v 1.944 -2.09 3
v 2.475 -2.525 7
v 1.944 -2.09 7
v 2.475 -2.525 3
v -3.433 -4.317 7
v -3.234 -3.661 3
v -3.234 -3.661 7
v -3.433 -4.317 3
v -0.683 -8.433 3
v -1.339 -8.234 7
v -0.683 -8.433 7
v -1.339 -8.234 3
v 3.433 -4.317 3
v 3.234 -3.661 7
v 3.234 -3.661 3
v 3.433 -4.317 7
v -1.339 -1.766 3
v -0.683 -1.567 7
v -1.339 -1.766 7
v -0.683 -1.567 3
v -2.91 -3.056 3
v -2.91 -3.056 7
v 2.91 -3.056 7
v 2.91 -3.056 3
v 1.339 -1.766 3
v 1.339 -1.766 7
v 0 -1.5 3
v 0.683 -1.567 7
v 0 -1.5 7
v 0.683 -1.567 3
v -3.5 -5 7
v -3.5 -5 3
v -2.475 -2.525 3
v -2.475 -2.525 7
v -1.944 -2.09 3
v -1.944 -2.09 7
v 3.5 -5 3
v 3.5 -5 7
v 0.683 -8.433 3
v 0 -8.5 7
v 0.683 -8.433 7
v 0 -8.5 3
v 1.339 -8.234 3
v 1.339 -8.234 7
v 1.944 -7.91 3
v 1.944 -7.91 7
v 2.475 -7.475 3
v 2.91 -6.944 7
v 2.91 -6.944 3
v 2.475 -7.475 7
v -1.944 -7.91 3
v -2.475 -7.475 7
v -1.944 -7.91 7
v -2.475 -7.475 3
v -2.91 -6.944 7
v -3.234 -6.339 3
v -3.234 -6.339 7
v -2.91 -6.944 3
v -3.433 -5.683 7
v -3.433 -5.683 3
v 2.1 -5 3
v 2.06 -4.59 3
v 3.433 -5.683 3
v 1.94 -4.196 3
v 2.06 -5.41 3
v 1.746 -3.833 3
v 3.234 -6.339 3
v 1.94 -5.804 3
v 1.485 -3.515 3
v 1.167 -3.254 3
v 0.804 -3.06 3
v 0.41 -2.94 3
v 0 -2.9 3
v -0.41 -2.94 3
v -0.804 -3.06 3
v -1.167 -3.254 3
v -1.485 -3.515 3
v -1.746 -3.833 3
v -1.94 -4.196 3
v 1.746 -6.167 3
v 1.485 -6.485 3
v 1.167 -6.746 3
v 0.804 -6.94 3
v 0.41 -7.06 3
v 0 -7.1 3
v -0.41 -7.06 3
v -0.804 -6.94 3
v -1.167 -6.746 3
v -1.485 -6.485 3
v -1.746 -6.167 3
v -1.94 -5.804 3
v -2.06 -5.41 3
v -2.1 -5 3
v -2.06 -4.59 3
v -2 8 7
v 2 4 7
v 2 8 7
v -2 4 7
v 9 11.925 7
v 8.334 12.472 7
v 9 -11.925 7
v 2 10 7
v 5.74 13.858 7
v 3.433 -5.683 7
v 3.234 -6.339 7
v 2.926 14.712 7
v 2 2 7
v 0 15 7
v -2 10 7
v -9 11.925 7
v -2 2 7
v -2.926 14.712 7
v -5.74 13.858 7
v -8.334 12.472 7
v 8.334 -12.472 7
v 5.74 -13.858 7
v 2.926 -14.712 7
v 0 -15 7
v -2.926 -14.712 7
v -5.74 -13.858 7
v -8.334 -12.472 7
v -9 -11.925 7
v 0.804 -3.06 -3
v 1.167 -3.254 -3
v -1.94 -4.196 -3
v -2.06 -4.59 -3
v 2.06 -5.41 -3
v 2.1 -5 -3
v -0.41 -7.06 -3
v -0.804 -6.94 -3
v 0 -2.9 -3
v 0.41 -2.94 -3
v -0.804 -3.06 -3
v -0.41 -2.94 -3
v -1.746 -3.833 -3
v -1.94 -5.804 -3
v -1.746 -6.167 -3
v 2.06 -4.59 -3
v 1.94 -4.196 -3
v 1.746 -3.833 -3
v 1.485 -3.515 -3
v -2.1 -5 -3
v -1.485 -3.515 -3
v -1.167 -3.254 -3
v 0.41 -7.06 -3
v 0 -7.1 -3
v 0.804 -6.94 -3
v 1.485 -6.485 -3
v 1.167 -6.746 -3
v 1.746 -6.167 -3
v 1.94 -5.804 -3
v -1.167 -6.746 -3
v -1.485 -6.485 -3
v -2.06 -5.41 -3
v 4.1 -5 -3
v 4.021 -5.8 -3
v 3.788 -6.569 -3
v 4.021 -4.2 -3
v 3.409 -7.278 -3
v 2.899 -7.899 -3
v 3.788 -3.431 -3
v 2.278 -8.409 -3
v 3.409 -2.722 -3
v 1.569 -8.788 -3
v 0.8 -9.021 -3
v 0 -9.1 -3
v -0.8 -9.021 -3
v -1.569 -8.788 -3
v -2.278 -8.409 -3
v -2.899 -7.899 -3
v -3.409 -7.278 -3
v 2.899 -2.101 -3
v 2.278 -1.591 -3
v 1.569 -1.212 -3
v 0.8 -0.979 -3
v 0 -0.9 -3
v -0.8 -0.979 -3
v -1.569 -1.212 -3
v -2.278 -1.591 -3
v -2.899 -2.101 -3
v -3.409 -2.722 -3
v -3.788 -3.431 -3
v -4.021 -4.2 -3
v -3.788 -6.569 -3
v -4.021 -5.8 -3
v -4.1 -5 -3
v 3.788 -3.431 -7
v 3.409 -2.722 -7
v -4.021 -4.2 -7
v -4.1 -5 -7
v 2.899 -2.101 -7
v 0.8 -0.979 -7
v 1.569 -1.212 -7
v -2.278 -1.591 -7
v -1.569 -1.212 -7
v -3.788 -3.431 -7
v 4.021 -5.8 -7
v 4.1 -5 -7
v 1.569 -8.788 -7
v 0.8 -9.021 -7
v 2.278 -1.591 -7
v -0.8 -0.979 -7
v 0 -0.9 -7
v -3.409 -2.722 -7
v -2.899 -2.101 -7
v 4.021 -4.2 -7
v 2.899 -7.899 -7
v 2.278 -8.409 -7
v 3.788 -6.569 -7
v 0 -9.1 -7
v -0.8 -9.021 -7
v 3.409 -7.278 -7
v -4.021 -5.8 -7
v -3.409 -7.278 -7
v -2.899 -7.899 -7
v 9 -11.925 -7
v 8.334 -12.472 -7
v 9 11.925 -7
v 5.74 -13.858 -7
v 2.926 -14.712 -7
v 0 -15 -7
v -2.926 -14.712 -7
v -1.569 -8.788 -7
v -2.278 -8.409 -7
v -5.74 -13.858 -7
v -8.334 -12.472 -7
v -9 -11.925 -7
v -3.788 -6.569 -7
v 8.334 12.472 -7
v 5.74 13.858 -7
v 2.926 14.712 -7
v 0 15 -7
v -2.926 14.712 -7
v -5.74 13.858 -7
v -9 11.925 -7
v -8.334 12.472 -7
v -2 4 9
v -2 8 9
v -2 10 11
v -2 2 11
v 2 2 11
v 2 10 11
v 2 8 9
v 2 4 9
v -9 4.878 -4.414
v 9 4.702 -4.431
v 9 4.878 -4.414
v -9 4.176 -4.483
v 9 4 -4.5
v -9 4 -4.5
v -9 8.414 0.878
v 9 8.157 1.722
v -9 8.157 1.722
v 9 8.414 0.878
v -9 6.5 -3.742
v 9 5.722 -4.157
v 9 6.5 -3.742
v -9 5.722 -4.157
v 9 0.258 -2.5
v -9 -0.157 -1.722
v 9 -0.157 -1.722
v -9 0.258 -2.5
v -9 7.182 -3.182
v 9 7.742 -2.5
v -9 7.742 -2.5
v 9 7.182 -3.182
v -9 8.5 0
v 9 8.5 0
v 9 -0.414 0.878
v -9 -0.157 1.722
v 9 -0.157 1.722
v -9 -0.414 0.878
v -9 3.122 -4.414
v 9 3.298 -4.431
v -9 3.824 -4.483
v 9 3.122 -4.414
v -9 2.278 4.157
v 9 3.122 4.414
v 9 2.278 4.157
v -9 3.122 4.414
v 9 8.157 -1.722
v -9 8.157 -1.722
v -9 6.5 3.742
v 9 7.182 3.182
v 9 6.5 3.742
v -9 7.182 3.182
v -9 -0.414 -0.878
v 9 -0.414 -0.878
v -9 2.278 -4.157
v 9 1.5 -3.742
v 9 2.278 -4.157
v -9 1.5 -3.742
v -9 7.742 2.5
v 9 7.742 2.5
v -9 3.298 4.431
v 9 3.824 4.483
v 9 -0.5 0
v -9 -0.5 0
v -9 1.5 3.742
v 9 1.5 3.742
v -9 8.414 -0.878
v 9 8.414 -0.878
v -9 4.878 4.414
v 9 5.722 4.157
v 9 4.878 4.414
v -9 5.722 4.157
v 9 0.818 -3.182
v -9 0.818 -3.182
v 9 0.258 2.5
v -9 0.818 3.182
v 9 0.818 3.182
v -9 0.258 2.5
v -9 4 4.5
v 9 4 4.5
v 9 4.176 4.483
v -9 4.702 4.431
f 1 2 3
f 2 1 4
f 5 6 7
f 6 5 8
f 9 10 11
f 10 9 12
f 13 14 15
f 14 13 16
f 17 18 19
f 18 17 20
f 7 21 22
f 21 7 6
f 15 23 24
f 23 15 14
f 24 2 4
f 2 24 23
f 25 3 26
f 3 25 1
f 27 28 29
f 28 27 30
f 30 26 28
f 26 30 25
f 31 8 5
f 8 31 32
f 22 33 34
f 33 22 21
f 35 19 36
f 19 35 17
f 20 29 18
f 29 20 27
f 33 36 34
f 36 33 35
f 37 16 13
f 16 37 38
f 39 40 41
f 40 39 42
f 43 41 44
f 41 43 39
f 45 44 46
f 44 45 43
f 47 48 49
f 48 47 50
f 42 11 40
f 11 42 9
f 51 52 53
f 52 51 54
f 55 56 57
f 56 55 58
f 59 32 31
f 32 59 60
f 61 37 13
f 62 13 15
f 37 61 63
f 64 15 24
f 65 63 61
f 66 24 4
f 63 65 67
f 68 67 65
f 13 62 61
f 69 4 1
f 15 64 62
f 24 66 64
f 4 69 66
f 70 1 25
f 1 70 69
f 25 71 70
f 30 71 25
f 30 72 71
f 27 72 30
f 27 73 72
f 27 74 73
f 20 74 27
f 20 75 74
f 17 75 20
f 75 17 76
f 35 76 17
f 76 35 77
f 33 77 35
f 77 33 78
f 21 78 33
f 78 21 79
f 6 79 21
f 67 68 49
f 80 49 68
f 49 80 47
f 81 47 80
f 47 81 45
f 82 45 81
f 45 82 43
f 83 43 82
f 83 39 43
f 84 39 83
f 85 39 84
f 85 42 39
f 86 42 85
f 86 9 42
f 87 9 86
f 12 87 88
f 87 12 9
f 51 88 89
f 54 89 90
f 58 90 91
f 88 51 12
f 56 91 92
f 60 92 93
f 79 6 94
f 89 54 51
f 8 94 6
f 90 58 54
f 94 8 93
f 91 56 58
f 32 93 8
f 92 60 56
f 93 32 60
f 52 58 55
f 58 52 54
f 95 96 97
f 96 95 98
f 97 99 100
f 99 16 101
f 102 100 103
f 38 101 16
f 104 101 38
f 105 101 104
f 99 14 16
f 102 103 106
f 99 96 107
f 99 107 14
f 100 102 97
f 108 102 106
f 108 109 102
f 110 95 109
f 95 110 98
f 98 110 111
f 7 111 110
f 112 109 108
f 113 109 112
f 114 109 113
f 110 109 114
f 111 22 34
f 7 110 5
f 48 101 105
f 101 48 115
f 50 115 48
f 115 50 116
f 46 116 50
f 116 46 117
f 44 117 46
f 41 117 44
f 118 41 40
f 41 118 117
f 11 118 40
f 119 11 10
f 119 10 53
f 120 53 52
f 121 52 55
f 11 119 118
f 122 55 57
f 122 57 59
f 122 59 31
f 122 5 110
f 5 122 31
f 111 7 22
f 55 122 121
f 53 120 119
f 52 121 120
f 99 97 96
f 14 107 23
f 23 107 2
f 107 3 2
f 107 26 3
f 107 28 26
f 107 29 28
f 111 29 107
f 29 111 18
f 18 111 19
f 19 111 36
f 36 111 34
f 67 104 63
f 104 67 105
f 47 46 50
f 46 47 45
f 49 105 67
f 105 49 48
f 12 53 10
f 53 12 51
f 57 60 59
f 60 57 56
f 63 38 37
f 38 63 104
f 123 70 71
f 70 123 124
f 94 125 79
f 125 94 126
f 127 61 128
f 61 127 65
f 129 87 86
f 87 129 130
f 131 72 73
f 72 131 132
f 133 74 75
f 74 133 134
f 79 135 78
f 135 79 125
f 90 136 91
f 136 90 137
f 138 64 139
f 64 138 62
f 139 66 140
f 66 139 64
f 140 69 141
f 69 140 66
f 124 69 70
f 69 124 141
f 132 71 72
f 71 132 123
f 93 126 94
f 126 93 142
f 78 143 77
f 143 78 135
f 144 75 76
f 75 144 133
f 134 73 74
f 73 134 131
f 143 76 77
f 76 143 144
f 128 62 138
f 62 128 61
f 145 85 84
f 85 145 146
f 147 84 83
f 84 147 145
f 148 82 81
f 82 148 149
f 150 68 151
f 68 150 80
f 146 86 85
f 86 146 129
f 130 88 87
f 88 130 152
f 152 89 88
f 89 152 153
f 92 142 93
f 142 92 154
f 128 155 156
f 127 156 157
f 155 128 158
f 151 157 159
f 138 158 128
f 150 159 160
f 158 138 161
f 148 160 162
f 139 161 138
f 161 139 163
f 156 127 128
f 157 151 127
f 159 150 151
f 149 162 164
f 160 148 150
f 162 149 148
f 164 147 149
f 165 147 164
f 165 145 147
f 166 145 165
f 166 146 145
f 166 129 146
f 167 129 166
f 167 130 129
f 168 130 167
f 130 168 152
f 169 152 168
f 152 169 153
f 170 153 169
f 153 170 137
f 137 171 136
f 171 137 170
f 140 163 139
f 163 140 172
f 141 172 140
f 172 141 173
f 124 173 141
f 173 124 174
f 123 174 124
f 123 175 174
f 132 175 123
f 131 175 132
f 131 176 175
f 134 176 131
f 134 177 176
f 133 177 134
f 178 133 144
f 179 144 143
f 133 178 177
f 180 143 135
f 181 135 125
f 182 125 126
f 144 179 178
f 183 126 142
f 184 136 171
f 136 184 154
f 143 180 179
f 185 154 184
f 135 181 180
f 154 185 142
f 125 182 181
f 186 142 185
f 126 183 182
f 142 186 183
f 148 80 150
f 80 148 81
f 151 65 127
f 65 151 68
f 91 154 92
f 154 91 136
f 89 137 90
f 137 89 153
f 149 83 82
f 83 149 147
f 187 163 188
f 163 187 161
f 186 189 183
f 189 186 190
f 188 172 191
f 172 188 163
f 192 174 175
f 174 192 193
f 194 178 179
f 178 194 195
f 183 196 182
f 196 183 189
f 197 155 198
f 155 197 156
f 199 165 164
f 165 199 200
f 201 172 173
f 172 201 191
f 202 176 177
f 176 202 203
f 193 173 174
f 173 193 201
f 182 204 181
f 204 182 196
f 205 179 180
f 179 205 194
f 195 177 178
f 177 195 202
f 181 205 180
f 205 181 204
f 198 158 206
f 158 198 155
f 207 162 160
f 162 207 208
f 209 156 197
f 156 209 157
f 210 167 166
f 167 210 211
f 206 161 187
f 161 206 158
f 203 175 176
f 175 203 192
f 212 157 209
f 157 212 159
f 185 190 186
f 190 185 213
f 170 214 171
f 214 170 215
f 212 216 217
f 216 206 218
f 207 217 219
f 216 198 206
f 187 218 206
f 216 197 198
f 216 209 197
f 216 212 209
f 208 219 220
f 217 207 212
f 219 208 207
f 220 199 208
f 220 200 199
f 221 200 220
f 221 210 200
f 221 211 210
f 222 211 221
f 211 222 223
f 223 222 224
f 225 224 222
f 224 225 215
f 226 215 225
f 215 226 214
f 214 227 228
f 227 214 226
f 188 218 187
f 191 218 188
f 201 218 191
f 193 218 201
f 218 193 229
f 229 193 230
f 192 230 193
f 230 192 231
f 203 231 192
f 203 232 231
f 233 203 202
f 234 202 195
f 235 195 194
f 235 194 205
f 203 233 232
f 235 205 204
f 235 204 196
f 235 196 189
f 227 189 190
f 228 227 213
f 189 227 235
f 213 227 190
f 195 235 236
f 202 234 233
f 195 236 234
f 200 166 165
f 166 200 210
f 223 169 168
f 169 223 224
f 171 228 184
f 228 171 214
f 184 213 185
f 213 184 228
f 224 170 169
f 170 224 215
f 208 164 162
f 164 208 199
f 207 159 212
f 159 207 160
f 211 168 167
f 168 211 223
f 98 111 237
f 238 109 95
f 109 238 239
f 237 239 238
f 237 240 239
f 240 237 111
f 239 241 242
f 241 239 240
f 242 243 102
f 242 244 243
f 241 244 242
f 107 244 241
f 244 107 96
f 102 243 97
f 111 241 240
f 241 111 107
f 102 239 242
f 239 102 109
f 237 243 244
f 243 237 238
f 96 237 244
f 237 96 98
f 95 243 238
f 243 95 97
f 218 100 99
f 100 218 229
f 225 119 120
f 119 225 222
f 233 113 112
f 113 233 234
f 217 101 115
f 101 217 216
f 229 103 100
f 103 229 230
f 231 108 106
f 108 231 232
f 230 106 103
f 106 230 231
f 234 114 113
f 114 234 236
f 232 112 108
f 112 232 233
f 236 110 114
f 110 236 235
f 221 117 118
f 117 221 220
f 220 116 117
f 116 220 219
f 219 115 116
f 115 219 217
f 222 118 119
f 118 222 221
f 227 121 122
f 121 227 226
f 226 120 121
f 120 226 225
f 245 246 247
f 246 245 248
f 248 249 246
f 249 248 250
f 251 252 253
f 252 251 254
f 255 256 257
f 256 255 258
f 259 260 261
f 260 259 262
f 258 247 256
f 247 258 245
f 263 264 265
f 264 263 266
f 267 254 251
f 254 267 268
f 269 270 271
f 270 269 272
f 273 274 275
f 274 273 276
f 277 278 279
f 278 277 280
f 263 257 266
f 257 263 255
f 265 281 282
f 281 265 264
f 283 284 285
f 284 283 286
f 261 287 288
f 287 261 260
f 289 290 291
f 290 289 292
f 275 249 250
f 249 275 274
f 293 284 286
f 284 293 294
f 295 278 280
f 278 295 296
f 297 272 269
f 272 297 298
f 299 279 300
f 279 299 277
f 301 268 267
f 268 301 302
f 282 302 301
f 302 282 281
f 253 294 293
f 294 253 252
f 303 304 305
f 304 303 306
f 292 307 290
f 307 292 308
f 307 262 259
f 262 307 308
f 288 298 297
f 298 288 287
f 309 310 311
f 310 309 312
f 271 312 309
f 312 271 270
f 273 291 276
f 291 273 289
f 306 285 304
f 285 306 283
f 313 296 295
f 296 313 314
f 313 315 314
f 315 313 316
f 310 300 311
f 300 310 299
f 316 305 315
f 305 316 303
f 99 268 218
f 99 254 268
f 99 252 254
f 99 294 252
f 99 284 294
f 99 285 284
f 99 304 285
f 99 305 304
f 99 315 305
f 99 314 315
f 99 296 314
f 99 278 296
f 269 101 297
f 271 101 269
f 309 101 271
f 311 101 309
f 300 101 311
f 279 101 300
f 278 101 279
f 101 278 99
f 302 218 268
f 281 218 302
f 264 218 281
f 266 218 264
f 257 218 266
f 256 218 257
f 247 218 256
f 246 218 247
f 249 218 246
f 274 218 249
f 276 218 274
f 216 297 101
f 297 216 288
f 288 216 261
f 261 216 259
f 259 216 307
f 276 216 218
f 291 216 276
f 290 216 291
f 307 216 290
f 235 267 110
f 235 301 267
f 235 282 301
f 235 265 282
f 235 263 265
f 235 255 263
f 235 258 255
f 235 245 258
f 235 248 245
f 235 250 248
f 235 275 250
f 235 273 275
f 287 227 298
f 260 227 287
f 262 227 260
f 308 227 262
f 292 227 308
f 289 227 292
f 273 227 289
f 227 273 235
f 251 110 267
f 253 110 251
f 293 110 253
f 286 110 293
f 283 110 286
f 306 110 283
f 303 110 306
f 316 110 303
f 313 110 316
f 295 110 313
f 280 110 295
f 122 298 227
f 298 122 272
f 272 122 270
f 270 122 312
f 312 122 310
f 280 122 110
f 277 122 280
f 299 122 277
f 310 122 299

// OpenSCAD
//6mm plate
//9mm rod

$fn=32;

rod_radius = 9 / 2;
z_rod_radius = 4.1;
screw_radius = 2.1;
screw_head_radius= 3.5;
bracket_radius = 30 / 2;
bracket_z = 14;


bracket();

module bracket(){
  difference(){
    union(){
      cylinder(r=bracket_radius, h=bracket_z, center=true);
      translate([0,6,bracket_z/2 + 2])
        cable_tie();
    }
    translate([0,-5,0])
      screw_hole();   
    translate([0,4,0])
      rotate([0,90,0]) rod();

    translate([12,4,0])
      cube([6,40,bracket_z], center=true);
    translate([-12,4,0])
      cube([6,40,bracket_z], center=true);

  }
}

module cable_tie(){
  difference(){
    cube([4,8,4], center=true);
    translate([0,0,-1])
      cube([4,4,2], center=true);
  }
}

module screw_hole(){
  translate([0,0,2+3])
    cylinder(r=screw_head_radius, h=4, center=true);
  translate([0,0,0])
    cylinder(r=screw_radius, h=6, center=true);
  translate([0,0,-5])
    cylinder(r=z_rod_radius, h=4, center=true);
}

module rod(){
  cylinder(r=rod_radius, h=30, center=true);
}
